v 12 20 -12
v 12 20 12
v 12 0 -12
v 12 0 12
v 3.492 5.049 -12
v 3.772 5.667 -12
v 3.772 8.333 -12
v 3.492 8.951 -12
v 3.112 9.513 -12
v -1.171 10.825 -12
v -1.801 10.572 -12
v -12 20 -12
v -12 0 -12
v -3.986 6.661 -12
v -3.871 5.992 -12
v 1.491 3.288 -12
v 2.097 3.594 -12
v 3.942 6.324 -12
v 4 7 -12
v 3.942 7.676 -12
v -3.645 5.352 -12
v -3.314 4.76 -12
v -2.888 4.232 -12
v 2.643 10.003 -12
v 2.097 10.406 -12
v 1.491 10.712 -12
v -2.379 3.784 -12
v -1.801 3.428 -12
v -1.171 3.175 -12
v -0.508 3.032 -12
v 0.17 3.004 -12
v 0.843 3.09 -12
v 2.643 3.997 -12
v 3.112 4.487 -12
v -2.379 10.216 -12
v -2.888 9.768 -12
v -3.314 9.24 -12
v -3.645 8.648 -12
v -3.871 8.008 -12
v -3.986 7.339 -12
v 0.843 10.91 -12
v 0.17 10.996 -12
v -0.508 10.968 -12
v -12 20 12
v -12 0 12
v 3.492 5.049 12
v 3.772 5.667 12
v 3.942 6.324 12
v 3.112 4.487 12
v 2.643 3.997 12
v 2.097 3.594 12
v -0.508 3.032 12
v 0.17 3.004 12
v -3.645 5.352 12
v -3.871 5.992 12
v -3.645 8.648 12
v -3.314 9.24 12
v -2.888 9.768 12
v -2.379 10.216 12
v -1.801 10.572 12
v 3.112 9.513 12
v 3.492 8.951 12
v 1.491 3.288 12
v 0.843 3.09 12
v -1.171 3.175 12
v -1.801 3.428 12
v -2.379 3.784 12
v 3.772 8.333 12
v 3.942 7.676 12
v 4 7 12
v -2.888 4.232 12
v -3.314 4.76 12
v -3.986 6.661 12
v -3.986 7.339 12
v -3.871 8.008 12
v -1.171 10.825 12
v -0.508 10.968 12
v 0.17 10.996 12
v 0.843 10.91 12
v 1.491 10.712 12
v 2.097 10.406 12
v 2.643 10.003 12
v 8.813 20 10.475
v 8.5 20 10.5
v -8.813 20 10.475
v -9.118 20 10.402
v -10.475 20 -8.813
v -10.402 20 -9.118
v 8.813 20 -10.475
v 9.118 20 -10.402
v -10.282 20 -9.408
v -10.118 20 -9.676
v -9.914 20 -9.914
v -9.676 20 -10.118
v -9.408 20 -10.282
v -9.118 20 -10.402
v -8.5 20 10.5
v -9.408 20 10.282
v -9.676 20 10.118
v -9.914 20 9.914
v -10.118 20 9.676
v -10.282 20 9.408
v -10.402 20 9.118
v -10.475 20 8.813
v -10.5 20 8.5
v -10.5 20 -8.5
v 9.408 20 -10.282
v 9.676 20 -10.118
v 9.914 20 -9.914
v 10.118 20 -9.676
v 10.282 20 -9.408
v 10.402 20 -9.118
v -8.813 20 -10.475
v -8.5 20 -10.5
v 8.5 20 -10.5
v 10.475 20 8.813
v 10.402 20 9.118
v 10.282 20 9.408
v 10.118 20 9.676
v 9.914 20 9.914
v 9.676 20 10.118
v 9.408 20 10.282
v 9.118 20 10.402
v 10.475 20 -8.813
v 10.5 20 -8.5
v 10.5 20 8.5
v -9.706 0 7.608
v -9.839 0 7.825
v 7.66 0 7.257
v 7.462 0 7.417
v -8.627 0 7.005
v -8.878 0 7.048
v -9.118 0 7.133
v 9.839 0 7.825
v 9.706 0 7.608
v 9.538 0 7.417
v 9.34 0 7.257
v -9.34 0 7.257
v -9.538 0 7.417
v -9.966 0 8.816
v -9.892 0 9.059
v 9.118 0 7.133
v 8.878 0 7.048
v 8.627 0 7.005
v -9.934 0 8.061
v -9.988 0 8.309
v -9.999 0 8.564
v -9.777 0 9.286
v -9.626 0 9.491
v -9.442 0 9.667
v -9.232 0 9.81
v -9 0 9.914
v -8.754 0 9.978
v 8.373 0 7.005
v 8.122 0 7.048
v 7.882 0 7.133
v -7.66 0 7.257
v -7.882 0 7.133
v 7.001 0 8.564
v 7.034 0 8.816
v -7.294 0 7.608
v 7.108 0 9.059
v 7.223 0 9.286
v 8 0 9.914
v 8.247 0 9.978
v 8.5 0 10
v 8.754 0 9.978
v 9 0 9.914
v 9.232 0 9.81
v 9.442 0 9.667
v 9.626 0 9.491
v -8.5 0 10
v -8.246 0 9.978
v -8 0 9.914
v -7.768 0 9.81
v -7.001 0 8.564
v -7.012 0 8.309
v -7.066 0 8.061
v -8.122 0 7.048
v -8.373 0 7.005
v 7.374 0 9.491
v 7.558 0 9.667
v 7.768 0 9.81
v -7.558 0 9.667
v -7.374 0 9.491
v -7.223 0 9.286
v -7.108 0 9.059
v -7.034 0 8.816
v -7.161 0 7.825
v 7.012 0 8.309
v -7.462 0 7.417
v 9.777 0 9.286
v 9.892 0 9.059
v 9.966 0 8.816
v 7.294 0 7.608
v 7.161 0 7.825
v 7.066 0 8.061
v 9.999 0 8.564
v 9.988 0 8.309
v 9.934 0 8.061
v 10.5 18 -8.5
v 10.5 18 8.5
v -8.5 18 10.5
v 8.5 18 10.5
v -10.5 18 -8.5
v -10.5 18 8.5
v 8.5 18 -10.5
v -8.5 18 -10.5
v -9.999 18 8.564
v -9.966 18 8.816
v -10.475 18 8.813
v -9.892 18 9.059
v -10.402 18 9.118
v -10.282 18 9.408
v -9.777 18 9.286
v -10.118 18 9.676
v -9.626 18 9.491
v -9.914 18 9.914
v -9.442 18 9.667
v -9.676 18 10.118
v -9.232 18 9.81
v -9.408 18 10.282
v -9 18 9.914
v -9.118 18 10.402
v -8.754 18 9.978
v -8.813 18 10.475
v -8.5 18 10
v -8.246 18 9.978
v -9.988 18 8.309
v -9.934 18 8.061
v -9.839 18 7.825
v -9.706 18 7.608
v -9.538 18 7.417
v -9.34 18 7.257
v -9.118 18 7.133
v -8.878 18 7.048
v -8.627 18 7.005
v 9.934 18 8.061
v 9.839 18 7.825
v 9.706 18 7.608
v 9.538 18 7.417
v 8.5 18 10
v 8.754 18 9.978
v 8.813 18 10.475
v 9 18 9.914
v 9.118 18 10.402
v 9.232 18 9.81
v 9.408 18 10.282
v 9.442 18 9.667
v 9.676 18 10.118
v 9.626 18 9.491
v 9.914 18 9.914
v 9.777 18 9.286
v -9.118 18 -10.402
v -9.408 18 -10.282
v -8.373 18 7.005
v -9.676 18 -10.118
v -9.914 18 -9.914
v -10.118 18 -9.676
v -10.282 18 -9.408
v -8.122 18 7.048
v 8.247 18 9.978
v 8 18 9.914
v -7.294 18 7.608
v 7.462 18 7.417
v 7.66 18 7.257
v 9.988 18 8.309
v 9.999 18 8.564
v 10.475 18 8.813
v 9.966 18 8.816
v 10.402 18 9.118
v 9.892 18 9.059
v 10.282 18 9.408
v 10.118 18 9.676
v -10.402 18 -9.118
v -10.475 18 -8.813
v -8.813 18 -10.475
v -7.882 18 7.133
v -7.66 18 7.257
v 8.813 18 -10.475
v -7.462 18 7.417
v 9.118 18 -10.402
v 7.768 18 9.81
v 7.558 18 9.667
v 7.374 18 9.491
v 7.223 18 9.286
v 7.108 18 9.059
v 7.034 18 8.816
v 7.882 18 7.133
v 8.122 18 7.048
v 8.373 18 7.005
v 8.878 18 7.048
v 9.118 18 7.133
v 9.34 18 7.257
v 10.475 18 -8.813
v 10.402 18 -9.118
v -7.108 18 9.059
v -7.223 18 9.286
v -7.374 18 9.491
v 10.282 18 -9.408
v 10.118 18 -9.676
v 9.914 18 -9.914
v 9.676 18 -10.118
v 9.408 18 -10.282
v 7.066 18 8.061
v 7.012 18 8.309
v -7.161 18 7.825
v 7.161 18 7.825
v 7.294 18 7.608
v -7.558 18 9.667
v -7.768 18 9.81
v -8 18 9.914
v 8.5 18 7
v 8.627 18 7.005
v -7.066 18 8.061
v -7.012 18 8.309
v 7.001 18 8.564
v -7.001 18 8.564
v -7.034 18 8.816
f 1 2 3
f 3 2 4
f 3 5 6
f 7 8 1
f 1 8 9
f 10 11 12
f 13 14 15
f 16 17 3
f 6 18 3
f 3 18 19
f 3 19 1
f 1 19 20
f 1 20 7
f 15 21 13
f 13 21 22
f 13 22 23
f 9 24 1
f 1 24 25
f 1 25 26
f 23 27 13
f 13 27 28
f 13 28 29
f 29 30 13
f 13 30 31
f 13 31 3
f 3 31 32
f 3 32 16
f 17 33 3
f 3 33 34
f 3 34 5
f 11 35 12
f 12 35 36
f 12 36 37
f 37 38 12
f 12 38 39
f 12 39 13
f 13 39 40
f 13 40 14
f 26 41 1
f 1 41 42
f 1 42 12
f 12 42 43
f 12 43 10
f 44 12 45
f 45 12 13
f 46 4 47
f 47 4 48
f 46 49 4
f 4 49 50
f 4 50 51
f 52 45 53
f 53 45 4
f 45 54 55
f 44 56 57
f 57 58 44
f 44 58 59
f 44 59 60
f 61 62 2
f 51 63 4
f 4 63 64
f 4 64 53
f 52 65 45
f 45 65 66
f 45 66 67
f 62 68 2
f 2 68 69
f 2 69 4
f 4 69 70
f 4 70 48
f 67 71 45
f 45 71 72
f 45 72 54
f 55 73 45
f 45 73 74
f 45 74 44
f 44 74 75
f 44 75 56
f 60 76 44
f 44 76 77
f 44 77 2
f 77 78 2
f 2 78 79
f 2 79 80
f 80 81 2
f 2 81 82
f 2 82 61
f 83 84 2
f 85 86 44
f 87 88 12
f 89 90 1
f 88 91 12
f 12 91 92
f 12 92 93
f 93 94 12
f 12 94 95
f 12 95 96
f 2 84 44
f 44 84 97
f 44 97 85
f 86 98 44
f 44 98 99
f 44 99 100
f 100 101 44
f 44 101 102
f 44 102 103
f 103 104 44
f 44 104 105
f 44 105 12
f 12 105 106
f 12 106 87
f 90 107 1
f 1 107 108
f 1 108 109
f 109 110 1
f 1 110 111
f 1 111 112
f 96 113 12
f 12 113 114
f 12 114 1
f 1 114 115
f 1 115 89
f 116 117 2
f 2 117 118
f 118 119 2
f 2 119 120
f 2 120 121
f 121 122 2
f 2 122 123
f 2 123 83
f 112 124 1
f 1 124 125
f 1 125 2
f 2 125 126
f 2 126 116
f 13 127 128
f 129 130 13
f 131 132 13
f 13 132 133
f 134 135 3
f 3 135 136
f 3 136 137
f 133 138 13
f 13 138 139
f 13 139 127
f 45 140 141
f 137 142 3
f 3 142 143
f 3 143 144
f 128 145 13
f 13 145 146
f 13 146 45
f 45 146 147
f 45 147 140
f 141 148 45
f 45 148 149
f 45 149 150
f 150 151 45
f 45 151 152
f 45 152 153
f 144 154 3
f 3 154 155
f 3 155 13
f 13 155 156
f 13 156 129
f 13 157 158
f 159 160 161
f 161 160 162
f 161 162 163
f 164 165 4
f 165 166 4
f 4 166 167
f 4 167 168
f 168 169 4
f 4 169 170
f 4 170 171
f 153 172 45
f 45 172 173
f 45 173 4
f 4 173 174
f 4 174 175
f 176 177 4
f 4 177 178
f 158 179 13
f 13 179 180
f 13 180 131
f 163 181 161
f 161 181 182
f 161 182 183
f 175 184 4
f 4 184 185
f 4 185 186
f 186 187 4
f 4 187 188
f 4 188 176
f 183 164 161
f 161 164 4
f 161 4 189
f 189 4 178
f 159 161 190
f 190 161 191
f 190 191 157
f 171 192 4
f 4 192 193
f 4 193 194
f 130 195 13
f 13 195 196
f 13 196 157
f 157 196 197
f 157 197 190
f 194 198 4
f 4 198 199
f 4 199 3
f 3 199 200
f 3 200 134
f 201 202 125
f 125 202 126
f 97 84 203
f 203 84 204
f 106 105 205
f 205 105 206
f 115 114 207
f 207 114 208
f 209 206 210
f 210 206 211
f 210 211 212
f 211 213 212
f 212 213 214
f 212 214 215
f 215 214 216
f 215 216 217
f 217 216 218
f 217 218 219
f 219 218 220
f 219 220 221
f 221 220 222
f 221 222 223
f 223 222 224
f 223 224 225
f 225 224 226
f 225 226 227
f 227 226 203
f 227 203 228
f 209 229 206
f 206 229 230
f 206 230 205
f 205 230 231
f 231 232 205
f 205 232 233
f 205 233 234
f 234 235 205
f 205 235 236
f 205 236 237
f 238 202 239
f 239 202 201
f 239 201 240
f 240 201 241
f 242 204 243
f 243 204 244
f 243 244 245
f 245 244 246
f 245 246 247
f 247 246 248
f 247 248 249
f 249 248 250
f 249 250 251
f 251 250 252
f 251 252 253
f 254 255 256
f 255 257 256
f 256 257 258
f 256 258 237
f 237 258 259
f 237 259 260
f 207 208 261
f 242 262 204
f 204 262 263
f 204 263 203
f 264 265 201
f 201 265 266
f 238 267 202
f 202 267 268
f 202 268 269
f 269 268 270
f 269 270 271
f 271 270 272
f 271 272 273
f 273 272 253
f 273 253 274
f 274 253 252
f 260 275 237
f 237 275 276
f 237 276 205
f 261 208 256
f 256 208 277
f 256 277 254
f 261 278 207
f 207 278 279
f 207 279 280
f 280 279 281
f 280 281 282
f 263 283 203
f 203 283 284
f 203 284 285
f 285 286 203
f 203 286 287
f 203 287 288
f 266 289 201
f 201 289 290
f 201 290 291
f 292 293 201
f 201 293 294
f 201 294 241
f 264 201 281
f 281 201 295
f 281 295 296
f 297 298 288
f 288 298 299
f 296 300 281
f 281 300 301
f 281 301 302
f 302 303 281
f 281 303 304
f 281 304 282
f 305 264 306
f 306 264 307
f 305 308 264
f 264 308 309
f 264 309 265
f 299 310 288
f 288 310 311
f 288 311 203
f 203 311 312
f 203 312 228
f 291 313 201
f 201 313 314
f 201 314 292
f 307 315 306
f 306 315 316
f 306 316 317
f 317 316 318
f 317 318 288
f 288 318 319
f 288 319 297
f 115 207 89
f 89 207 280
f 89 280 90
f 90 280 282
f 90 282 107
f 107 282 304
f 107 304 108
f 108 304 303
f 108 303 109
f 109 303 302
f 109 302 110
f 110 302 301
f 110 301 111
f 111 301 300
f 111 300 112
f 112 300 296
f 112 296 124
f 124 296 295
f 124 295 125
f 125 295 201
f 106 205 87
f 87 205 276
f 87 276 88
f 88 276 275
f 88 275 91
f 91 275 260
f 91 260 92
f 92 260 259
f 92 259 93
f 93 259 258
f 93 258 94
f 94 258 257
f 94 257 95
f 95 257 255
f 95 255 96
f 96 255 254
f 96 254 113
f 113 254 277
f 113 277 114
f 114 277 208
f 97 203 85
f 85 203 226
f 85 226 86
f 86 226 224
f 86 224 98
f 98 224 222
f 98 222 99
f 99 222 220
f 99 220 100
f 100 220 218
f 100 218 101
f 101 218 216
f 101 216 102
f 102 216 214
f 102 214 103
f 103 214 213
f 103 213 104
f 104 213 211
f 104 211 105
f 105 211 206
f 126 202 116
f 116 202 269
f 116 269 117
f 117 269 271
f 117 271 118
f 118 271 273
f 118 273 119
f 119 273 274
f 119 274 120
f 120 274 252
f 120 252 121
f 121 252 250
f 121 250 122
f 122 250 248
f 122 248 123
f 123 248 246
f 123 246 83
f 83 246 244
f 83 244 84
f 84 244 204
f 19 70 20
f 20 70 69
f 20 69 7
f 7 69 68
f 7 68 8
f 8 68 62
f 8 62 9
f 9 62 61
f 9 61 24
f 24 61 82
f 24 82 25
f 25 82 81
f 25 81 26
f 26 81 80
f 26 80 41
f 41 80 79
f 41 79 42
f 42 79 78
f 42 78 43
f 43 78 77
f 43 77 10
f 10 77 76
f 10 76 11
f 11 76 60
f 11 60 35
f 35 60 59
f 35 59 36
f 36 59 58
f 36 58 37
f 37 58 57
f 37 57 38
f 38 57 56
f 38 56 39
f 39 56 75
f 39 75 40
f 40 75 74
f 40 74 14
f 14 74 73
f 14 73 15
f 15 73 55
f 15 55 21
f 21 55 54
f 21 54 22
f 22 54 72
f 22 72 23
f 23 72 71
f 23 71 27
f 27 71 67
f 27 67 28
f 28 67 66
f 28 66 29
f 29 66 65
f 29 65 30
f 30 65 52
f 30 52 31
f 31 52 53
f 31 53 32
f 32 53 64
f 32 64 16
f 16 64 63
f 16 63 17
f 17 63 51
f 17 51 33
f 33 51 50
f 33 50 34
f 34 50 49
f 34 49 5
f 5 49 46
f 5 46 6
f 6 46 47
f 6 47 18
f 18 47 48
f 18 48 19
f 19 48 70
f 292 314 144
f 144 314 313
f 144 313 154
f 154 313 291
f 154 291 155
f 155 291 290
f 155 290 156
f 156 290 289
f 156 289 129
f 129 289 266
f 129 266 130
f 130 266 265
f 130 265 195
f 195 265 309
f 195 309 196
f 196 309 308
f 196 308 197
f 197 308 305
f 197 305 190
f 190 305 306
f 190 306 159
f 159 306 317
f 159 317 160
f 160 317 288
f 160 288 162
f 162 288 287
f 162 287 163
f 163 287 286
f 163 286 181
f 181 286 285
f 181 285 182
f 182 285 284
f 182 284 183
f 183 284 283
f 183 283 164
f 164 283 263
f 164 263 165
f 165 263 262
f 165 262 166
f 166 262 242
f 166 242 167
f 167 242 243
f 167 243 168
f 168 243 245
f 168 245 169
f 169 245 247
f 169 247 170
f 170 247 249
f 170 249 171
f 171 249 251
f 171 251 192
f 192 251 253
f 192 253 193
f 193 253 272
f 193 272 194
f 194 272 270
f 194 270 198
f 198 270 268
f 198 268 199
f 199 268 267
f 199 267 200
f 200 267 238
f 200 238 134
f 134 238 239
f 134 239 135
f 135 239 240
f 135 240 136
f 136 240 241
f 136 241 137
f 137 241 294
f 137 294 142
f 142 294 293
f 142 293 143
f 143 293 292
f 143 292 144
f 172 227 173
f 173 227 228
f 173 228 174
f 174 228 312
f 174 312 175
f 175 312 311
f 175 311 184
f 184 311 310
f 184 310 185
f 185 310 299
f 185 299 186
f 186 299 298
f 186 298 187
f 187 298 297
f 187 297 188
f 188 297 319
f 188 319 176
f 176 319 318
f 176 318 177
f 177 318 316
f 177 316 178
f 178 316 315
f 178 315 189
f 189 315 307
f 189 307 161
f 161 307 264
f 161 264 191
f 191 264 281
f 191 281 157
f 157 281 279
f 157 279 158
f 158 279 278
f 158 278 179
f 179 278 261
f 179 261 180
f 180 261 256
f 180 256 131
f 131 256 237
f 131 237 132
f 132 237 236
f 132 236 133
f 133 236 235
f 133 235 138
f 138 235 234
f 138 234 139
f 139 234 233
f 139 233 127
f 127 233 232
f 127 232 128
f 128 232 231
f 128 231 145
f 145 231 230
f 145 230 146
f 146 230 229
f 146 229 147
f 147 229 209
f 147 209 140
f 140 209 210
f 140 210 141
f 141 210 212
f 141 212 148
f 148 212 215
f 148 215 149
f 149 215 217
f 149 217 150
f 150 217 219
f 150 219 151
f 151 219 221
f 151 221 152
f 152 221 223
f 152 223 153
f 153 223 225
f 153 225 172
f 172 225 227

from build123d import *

# Parameters (mm, degrees)
SKETCH1_W           = 24
SKETCH1_H           = 24
BOSS_EXTRUDE1_DEPTH = 20
SKETCH2_W           = 21
SKETCH2_H           = 21
CUT_EXTRUDE1_DEPTH  = 2
FILLET2_R           = 2
SKETCH3_R           = 4
CUT_EXTRUDE2_DEPTH  = 42
SKETCH5_R           = 1.5
CUT_EXTRUDE3_DEPTH  = 42


with BuildPart() as part:
    # Sketch1 → Boss-Extrude1 (new body)
    with BuildSketch(Plane(origin=(0, 0, 0), x_dir=(1, 0, 0), z_dir=(0, 1, 0))):
        Rectangle(SKETCH1_W, SKETCH1_H)
    extrude(amount=BOSS_EXTRUDE1_DEPTH)

    # Sketch2 → Cut-Extrude1 (cut)
    with BuildSketch(Plane(origin=(0, 20, 0), x_dir=(1, 0, 0), z_dir=(0, 1, 0))):
        Rectangle(SKETCH2_W, SKETCH2_H)
    extrude(amount=-CUT_EXTRUDE1_DEPTH, mode=Mode.SUBTRACT)

    # Fillet2
    fillet2_edges = [part.edges().sort_by_distance(p)[0] for p in [
        (10.5, 19, -10.5),
        (10.5, 19, 10.5),
        (-10.5, 19, 10.5),
        (-10.5, 19, -10.5),
    ]]
    fillet(fillet2_edges, radius=FILLET2_R)

    # Sketch3 → Cut-Extrude2 (cut)
    with BuildSketch(Plane.XY.offset(12)):
        with Locations((0, 7)):
            Circle(SKETCH3_R)
    extrude(amount=-CUT_EXTRUDE2_DEPTH, mode=Mode.SUBTRACT)

    # Sketch5 → Cut-Extrude3 (cut)
    with BuildSketch(Plane(origin=(0, 18, 0), x_dir=(1, 0, 0), z_dir=(0, 1, 0))):
        with Locations(Location((-8.5, -8.5, 0), (0, 0, 270))):
            Circle(SKETCH5_R)
        with Locations(Location((8.5, -8.5, 0), (0, 0, 270))):
            Circle(SKETCH5_R)
    extrude(amount=-CUT_EXTRUDE3_DEPTH, mode=Mode.SUBTRACT)


solid = part.part
